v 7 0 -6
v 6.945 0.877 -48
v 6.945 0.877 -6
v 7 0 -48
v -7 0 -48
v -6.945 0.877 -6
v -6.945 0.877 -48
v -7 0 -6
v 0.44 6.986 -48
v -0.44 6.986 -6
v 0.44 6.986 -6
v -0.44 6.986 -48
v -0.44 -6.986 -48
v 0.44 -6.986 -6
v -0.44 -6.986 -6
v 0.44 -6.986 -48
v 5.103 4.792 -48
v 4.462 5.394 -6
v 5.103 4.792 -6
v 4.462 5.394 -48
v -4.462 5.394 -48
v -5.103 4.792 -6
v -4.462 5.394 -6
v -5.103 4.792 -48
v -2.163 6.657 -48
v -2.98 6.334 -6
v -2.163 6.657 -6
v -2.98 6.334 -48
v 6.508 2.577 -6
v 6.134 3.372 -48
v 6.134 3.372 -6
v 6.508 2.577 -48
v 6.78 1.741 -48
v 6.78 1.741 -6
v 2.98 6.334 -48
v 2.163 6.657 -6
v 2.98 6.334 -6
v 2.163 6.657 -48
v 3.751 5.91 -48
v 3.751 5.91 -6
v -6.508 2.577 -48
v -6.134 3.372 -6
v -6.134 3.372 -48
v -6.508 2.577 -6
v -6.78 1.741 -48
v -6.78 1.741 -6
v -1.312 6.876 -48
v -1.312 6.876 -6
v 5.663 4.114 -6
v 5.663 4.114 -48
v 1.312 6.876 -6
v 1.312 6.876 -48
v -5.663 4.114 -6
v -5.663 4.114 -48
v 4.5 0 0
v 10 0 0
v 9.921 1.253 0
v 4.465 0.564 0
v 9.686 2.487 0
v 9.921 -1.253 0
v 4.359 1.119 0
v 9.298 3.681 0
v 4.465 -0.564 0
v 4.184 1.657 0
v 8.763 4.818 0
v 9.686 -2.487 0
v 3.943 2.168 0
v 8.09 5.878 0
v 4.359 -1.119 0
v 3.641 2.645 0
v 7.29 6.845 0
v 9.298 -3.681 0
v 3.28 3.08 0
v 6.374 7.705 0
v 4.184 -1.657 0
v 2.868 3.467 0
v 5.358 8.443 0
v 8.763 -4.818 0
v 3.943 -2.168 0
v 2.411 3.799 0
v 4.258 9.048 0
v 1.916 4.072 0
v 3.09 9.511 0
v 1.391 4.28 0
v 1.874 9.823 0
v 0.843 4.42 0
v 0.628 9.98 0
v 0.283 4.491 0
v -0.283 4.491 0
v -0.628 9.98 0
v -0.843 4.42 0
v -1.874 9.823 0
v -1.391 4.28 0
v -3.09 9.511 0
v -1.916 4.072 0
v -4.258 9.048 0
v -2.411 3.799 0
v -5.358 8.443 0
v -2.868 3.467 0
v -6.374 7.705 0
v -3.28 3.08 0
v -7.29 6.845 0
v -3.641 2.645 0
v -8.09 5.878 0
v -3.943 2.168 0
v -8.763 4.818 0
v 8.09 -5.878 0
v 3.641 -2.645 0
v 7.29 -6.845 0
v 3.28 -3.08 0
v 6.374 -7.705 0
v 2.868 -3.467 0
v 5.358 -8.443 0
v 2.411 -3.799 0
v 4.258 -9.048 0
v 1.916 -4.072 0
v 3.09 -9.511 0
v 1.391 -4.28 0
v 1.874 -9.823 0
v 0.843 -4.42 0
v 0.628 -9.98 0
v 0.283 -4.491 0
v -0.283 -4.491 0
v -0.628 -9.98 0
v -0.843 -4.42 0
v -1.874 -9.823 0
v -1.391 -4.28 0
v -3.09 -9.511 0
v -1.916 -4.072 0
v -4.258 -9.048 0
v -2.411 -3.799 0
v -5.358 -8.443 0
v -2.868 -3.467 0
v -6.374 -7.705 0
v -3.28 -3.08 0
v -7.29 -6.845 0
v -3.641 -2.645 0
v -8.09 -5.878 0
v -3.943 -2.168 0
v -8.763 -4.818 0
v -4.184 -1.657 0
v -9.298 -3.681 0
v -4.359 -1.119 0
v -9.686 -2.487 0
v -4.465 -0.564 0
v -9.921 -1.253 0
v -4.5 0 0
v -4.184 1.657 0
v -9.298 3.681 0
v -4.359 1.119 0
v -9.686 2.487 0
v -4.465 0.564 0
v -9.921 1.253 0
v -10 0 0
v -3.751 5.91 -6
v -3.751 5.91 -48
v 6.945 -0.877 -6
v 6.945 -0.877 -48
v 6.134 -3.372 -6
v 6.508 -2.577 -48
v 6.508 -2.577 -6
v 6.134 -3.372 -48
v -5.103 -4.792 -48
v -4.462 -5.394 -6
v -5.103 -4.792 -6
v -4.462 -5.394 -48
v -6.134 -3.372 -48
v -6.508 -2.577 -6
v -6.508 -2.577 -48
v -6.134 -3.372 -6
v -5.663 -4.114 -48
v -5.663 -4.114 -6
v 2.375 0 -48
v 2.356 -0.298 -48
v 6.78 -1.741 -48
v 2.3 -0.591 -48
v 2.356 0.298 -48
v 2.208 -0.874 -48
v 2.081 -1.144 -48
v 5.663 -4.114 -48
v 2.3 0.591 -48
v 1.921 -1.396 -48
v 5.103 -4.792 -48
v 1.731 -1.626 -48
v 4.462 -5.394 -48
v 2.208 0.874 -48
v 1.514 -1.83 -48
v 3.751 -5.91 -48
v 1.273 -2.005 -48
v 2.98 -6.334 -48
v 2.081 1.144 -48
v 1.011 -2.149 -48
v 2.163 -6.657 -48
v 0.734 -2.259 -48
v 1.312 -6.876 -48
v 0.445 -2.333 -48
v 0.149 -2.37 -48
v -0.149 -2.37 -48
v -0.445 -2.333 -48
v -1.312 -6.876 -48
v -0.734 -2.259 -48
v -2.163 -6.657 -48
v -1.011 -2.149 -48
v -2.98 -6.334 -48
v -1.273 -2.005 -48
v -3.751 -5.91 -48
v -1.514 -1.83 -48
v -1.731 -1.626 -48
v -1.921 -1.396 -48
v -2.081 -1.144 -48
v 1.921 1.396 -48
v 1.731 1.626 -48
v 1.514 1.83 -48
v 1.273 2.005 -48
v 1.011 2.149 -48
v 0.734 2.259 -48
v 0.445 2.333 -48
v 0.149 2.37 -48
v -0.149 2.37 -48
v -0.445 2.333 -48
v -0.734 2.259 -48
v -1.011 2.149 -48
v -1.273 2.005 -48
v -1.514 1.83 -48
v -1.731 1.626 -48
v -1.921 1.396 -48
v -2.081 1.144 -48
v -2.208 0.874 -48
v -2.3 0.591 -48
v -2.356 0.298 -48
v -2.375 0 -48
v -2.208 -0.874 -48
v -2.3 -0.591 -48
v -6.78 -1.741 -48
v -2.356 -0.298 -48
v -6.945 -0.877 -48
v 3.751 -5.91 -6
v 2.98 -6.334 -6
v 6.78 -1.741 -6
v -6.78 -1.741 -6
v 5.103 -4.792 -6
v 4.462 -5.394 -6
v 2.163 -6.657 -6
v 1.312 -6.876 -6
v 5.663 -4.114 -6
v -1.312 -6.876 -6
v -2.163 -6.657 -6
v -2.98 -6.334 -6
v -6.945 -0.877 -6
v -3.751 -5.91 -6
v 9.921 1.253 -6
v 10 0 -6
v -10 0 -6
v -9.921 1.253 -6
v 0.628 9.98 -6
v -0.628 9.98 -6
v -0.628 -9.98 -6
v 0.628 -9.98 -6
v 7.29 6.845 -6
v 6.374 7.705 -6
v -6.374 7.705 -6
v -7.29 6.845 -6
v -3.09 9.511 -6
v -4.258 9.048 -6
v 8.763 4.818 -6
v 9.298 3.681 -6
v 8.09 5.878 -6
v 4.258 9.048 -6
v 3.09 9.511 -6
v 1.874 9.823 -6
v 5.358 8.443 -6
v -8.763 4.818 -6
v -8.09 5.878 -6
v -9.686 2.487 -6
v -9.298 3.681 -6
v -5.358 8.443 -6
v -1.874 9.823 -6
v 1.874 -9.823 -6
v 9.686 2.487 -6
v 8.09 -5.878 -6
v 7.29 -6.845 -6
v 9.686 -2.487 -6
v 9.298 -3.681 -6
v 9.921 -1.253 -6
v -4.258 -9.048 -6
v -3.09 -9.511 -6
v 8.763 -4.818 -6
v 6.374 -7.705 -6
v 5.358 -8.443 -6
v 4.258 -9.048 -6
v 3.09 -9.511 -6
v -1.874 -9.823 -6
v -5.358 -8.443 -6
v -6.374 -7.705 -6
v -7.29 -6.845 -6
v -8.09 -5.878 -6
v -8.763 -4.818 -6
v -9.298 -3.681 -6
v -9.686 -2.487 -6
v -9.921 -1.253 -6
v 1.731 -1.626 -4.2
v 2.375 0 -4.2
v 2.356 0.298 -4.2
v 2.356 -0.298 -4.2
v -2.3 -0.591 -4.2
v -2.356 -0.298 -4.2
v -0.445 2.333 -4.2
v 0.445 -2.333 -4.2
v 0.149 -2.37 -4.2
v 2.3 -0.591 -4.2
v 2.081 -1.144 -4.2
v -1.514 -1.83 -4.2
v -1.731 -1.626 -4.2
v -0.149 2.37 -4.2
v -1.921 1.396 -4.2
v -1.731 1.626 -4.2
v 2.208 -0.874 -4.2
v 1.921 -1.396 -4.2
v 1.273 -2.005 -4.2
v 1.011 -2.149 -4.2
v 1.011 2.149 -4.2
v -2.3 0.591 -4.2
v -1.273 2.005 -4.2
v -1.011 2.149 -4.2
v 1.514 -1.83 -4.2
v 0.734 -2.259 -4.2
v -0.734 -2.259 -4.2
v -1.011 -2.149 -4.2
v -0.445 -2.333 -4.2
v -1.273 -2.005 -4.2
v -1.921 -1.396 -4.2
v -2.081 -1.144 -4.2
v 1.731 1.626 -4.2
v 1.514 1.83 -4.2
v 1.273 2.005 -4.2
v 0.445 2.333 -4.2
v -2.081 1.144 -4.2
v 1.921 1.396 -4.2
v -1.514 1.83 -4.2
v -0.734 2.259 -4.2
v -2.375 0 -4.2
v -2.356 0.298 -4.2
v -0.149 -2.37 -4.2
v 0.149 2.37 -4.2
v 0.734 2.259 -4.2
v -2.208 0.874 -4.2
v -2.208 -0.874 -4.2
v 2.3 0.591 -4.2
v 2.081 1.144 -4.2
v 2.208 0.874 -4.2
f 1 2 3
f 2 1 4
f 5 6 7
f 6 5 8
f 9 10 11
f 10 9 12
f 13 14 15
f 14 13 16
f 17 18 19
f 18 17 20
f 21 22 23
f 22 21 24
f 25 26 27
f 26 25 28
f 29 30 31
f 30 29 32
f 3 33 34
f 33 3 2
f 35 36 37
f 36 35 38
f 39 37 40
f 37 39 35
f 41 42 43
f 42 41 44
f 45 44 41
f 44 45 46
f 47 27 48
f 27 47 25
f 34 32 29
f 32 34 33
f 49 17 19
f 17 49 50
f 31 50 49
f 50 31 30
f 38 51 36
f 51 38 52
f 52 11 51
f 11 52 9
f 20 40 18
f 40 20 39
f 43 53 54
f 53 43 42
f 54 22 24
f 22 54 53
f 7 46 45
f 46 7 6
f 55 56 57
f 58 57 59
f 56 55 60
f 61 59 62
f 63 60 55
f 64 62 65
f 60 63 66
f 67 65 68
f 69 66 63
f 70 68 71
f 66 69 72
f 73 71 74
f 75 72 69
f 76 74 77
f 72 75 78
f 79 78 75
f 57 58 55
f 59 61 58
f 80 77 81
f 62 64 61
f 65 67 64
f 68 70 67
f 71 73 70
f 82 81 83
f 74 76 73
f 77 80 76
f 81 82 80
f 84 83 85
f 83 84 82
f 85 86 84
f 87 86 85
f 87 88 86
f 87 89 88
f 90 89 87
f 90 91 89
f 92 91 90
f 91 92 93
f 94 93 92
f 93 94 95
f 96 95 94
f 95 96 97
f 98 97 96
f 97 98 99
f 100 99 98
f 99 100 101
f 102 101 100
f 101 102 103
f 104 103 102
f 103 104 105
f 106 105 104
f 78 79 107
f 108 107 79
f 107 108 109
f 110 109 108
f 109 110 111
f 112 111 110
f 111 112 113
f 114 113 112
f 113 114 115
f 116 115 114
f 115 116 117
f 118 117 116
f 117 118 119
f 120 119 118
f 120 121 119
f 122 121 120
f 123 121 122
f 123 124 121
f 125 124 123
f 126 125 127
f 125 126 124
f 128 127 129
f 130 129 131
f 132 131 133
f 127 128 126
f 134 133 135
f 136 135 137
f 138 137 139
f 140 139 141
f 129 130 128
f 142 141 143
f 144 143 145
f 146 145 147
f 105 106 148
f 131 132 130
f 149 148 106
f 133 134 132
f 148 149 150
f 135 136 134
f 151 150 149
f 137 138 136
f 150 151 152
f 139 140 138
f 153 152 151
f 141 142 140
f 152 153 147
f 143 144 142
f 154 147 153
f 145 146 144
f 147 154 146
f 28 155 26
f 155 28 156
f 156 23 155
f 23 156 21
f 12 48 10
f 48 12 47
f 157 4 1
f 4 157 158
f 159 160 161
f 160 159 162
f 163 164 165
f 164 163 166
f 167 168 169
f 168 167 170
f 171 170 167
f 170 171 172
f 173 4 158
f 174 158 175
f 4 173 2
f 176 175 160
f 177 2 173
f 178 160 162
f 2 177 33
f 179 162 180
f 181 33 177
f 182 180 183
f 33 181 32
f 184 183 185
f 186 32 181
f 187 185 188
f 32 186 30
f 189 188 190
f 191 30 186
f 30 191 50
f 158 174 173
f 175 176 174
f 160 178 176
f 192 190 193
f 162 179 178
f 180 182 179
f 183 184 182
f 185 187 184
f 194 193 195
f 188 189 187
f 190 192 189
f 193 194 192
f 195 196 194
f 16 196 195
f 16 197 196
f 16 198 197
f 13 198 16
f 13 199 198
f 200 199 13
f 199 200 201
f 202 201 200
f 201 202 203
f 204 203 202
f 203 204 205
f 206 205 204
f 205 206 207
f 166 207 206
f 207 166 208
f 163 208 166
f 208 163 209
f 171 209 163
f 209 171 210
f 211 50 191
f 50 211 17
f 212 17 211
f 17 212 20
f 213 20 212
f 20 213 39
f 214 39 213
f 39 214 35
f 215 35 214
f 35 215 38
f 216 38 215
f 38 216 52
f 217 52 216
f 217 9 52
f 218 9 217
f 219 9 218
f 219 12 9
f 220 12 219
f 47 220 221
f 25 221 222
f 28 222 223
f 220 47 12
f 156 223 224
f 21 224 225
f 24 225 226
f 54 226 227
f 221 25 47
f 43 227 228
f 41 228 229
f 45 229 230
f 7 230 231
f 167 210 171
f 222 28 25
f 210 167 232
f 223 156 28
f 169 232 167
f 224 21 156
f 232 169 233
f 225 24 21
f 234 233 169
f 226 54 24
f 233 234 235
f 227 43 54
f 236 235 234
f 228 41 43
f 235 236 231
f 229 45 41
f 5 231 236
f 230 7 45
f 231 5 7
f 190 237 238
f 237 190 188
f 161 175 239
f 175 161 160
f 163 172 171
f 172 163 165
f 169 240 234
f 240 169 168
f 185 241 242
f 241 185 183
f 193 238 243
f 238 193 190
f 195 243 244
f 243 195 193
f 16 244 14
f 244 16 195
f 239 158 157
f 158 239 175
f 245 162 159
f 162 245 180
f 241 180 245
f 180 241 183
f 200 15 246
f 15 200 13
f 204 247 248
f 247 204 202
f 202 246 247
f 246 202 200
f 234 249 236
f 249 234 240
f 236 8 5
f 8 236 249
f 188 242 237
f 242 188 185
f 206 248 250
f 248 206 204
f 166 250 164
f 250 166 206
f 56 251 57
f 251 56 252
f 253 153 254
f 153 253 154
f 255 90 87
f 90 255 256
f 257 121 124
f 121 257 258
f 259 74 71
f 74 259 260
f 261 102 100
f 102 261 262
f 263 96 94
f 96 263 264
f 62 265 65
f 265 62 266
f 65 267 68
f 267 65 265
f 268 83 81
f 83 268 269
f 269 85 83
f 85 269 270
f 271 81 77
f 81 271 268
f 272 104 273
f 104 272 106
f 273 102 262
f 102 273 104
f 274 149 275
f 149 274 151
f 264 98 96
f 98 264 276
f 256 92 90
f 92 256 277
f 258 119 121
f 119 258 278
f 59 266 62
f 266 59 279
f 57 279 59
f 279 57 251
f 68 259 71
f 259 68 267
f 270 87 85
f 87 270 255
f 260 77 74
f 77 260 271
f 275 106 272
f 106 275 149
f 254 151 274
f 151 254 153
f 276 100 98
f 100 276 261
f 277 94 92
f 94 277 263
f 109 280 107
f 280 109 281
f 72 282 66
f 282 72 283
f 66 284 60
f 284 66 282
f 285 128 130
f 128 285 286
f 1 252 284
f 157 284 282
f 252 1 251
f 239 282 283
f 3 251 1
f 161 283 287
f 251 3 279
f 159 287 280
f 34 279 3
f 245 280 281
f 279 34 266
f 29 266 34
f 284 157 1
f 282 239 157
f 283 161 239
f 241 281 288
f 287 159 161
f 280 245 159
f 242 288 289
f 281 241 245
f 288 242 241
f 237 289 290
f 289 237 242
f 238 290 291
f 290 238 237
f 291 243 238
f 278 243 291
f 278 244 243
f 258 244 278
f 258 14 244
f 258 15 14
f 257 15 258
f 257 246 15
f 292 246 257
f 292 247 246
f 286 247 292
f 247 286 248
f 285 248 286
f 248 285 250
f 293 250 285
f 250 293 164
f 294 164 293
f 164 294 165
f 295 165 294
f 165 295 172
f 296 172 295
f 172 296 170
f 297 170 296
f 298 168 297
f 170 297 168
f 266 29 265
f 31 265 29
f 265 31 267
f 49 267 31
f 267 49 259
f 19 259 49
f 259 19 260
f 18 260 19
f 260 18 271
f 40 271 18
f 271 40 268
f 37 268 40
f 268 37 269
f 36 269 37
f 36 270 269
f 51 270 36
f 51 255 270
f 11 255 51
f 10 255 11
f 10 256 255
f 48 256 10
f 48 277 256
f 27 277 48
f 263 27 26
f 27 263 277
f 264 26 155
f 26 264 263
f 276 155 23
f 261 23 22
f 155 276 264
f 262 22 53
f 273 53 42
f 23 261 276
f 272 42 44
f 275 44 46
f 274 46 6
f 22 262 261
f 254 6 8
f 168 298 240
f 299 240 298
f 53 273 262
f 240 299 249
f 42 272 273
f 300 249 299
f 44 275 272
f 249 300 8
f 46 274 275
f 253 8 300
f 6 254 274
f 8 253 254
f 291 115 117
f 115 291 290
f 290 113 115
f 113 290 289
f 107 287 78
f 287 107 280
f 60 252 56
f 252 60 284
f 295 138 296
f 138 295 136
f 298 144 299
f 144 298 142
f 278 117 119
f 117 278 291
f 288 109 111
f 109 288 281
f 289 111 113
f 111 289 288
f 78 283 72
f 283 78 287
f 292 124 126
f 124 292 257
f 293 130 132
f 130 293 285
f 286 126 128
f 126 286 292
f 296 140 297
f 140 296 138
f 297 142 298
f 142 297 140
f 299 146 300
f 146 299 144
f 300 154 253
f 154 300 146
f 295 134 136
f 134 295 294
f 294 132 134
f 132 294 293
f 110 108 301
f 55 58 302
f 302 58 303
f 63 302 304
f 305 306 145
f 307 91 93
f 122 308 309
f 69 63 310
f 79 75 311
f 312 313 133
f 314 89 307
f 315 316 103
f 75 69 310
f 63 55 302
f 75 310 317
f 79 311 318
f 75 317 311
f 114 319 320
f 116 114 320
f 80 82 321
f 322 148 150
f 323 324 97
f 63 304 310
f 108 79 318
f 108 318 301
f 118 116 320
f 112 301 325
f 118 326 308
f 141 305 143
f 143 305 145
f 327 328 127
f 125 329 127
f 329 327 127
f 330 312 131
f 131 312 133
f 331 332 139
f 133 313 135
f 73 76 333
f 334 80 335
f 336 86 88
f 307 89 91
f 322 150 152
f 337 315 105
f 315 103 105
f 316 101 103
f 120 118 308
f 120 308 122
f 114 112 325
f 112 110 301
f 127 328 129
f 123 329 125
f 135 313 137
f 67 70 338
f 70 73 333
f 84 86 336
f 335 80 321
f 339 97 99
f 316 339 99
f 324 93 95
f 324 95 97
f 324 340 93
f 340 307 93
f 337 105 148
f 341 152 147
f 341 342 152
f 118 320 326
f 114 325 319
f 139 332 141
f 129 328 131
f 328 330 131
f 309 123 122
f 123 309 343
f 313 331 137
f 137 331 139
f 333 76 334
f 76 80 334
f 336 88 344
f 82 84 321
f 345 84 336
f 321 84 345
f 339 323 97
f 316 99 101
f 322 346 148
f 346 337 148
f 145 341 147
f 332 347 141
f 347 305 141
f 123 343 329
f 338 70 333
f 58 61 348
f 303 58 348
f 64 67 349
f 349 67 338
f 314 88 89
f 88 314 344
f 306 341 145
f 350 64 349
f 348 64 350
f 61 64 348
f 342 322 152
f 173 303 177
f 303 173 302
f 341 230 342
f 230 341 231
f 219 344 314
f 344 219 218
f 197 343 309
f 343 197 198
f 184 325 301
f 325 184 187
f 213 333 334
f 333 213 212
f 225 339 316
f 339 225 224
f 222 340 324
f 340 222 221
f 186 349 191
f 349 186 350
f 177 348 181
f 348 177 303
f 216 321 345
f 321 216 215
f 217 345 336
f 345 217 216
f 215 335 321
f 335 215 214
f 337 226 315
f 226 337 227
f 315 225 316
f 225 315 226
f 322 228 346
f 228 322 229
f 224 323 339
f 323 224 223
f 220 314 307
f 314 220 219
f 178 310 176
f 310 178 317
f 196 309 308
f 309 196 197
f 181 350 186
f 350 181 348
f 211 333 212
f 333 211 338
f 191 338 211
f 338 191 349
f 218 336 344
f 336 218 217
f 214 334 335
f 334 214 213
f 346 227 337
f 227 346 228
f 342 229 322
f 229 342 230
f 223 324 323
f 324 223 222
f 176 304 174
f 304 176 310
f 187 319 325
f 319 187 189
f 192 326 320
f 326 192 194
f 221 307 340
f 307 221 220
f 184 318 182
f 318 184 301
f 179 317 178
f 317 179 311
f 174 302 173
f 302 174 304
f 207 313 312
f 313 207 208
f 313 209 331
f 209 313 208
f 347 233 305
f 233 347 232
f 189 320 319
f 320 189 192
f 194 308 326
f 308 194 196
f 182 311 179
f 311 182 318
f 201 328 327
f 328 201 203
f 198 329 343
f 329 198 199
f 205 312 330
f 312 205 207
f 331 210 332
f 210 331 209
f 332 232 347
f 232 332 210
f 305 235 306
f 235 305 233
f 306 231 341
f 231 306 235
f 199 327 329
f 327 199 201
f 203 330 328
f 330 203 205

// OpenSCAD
$fn = 50;


difference() {
	union() {
		translate(v = [0, 0, -48.0000000000]) {
			cylinder(h = 48, r = 7.0000000000);
		}
		translate(v = [0, 0, -6.0000000000]) {
			cylinder(h = 6, r = 10.0000000000);
		}
	}
	union() {
		translate(v = [0, 0, 0]) {
			rotate(a = [0, 0, 0]) {
				difference() {
					union() {
						#translate(v = [0, 0, -48.0000000000]) {
							cylinder(h = 48, r = 2.2500000000);
						}
						#translate(v = [0, 0, -4.2000000000]) {
							cylinder(h = 4.2000000000, r = 7.0000000000, r1 = 2.3750000000, r2 = 4.5000000000);
						}
						#translate(v = [0, 0, -48.0000000000]) {
							cylinder(h = 48, r = 2.3750000000);
						}
						#translate(v = [0, 0, -48.0000000000]) {
							cylinder(h = 48, r = 2.2500000000);
						}
					}
					union();
				}
			}
		}
	}
}
